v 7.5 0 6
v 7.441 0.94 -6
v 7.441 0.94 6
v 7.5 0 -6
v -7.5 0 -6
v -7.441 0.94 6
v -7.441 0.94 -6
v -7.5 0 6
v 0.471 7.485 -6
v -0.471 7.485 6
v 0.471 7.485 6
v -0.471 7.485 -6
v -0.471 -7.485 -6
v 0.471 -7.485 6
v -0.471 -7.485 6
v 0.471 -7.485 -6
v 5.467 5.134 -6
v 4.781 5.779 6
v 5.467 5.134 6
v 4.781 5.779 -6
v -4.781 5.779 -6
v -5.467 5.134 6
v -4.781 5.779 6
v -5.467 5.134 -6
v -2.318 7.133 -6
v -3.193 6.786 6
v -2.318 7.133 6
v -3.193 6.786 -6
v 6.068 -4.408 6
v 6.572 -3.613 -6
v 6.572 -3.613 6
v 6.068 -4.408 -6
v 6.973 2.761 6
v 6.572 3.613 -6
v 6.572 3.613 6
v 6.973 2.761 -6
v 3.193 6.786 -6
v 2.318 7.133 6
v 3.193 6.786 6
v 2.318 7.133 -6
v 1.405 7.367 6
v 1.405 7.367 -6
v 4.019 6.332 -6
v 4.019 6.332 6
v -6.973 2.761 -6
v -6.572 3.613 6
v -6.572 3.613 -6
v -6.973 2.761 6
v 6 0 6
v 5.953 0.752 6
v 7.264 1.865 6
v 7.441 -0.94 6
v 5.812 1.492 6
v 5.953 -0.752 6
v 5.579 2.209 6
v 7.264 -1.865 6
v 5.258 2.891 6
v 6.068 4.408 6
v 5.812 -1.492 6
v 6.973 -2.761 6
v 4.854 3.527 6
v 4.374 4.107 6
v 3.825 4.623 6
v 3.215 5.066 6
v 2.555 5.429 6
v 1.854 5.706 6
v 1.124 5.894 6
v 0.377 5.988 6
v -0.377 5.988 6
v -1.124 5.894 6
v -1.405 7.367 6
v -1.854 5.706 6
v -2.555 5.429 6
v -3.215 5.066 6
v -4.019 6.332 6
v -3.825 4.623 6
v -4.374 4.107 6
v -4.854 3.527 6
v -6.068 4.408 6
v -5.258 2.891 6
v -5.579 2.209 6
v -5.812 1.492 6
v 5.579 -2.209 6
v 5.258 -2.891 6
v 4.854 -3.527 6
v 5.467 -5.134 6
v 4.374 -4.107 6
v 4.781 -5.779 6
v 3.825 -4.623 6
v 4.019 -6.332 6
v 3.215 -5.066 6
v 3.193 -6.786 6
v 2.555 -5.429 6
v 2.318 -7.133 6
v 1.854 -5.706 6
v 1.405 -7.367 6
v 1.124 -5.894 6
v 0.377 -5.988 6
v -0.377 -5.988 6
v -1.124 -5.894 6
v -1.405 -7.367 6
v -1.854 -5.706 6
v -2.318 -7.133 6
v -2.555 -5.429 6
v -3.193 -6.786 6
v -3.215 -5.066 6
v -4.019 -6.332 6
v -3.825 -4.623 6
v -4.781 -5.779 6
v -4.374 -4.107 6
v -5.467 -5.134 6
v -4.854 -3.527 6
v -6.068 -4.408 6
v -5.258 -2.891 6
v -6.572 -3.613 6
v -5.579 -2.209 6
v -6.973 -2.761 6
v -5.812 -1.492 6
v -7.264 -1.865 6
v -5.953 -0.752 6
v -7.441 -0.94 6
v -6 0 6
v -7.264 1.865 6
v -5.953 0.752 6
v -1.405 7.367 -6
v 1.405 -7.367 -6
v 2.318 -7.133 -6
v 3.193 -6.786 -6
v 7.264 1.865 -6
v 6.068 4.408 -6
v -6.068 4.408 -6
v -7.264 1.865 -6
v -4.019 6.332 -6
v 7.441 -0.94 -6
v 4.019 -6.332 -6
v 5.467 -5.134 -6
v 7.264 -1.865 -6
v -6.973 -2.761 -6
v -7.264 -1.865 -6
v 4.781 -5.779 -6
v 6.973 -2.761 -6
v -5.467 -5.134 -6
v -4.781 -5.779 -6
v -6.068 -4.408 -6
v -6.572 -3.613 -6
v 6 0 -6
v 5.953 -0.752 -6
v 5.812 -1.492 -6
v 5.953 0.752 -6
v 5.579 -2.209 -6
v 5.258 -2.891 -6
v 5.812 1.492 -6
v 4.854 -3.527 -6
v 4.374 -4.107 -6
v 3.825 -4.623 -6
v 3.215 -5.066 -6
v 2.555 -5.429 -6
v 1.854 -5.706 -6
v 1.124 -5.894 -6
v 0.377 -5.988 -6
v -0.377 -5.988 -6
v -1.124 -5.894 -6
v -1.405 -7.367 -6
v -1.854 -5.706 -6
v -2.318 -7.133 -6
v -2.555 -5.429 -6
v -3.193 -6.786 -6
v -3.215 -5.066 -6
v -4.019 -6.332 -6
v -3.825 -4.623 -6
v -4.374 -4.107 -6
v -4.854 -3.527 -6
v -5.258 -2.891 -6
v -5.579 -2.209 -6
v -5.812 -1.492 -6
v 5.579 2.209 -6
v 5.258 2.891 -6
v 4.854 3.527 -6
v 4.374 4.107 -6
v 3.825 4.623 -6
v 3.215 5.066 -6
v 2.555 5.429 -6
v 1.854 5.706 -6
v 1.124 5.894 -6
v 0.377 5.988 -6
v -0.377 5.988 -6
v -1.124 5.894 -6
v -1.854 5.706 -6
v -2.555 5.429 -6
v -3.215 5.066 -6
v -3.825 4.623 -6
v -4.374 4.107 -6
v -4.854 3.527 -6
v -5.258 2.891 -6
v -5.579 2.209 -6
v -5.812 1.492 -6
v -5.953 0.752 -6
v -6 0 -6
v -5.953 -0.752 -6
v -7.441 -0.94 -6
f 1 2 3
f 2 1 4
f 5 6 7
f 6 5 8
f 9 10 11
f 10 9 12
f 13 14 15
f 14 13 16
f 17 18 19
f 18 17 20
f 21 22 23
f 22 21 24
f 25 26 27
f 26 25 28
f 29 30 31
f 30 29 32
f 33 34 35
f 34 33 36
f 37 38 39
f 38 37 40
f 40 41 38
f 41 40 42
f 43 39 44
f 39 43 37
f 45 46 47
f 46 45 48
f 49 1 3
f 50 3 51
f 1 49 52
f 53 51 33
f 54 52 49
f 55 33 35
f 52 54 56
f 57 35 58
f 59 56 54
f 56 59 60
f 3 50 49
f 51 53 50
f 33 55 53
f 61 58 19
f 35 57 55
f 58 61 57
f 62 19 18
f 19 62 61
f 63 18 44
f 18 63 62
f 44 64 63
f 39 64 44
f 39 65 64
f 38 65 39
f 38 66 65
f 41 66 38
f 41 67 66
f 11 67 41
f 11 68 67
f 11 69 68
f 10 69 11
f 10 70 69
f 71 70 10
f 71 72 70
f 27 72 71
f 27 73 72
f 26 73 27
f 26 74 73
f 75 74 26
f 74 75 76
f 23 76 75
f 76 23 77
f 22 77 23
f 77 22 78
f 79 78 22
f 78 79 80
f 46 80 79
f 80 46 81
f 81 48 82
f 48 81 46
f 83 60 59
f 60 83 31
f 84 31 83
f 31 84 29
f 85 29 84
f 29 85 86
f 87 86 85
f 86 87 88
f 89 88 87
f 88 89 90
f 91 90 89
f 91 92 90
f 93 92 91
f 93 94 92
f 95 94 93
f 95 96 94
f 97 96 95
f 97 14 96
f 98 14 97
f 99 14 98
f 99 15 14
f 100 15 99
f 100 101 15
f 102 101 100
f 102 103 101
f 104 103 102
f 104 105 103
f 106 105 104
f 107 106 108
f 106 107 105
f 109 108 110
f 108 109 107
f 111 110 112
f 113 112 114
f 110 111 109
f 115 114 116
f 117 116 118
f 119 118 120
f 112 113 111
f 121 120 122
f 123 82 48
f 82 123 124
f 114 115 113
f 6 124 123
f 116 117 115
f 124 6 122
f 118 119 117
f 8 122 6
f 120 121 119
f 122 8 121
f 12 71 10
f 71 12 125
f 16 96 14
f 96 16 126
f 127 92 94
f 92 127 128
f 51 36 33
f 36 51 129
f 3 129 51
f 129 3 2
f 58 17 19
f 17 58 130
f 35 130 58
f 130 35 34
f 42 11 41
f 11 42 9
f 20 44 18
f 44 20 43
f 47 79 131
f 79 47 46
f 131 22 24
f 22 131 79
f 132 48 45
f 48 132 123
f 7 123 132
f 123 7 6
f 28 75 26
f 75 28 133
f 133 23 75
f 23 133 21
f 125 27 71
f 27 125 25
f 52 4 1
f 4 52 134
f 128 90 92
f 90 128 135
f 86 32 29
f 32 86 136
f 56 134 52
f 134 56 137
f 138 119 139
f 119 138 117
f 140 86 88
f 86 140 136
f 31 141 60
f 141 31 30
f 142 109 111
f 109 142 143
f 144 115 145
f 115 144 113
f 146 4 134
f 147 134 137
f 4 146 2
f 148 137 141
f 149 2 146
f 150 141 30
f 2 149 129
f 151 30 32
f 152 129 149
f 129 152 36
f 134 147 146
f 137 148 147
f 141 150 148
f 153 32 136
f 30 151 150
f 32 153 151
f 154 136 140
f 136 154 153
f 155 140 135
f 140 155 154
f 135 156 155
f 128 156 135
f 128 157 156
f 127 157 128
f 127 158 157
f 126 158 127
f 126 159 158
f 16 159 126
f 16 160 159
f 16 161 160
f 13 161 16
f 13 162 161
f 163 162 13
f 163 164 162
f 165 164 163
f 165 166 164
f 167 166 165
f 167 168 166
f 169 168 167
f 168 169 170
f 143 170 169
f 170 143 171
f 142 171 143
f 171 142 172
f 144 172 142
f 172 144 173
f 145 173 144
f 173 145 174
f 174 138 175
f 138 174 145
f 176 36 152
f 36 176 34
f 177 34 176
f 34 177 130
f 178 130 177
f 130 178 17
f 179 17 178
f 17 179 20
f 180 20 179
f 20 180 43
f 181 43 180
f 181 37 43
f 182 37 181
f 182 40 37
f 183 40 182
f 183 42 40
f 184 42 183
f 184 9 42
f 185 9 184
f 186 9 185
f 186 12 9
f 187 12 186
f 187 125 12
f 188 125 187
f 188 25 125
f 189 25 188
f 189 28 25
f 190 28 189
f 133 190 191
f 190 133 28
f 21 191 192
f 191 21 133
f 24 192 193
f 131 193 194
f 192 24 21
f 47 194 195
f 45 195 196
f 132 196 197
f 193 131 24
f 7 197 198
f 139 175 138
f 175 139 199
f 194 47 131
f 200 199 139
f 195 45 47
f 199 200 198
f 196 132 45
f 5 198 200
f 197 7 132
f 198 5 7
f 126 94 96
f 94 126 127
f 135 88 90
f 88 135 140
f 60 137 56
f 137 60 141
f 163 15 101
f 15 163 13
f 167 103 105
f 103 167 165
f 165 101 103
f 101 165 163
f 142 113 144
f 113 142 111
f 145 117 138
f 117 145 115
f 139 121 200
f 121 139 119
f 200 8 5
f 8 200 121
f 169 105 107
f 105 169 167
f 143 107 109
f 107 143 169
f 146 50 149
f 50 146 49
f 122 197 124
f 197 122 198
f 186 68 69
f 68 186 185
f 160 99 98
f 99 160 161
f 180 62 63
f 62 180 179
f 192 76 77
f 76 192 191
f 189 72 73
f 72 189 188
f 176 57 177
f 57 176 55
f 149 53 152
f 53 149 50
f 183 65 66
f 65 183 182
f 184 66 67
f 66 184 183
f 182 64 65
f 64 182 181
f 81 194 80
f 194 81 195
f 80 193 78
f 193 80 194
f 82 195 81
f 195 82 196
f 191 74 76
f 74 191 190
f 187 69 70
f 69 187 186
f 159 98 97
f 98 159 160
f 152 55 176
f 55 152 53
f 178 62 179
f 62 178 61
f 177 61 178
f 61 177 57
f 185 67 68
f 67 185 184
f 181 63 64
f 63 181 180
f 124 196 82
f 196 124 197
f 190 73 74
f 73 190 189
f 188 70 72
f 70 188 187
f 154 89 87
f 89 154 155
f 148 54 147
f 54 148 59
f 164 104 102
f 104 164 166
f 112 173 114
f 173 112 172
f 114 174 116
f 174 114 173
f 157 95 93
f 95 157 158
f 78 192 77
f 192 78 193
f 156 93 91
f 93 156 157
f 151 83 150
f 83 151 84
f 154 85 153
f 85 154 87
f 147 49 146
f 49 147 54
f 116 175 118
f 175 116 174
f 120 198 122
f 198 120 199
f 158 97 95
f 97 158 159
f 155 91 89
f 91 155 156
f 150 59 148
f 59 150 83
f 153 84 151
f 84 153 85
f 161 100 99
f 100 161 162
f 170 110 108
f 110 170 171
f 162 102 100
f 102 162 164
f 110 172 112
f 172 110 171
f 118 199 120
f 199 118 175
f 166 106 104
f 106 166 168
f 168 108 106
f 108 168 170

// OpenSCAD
$fn = 50;


difference() {
	union() {
		translate(v = [0, 0, -6.0000000000]) {
			cylinder(h = 12, r = 7.5000000000);
		}
	}
	union() {
		translate(v = [0, 0, -100.0000000000]) {
			cylinder(h = 200, r = 6);
		}
	}
}
